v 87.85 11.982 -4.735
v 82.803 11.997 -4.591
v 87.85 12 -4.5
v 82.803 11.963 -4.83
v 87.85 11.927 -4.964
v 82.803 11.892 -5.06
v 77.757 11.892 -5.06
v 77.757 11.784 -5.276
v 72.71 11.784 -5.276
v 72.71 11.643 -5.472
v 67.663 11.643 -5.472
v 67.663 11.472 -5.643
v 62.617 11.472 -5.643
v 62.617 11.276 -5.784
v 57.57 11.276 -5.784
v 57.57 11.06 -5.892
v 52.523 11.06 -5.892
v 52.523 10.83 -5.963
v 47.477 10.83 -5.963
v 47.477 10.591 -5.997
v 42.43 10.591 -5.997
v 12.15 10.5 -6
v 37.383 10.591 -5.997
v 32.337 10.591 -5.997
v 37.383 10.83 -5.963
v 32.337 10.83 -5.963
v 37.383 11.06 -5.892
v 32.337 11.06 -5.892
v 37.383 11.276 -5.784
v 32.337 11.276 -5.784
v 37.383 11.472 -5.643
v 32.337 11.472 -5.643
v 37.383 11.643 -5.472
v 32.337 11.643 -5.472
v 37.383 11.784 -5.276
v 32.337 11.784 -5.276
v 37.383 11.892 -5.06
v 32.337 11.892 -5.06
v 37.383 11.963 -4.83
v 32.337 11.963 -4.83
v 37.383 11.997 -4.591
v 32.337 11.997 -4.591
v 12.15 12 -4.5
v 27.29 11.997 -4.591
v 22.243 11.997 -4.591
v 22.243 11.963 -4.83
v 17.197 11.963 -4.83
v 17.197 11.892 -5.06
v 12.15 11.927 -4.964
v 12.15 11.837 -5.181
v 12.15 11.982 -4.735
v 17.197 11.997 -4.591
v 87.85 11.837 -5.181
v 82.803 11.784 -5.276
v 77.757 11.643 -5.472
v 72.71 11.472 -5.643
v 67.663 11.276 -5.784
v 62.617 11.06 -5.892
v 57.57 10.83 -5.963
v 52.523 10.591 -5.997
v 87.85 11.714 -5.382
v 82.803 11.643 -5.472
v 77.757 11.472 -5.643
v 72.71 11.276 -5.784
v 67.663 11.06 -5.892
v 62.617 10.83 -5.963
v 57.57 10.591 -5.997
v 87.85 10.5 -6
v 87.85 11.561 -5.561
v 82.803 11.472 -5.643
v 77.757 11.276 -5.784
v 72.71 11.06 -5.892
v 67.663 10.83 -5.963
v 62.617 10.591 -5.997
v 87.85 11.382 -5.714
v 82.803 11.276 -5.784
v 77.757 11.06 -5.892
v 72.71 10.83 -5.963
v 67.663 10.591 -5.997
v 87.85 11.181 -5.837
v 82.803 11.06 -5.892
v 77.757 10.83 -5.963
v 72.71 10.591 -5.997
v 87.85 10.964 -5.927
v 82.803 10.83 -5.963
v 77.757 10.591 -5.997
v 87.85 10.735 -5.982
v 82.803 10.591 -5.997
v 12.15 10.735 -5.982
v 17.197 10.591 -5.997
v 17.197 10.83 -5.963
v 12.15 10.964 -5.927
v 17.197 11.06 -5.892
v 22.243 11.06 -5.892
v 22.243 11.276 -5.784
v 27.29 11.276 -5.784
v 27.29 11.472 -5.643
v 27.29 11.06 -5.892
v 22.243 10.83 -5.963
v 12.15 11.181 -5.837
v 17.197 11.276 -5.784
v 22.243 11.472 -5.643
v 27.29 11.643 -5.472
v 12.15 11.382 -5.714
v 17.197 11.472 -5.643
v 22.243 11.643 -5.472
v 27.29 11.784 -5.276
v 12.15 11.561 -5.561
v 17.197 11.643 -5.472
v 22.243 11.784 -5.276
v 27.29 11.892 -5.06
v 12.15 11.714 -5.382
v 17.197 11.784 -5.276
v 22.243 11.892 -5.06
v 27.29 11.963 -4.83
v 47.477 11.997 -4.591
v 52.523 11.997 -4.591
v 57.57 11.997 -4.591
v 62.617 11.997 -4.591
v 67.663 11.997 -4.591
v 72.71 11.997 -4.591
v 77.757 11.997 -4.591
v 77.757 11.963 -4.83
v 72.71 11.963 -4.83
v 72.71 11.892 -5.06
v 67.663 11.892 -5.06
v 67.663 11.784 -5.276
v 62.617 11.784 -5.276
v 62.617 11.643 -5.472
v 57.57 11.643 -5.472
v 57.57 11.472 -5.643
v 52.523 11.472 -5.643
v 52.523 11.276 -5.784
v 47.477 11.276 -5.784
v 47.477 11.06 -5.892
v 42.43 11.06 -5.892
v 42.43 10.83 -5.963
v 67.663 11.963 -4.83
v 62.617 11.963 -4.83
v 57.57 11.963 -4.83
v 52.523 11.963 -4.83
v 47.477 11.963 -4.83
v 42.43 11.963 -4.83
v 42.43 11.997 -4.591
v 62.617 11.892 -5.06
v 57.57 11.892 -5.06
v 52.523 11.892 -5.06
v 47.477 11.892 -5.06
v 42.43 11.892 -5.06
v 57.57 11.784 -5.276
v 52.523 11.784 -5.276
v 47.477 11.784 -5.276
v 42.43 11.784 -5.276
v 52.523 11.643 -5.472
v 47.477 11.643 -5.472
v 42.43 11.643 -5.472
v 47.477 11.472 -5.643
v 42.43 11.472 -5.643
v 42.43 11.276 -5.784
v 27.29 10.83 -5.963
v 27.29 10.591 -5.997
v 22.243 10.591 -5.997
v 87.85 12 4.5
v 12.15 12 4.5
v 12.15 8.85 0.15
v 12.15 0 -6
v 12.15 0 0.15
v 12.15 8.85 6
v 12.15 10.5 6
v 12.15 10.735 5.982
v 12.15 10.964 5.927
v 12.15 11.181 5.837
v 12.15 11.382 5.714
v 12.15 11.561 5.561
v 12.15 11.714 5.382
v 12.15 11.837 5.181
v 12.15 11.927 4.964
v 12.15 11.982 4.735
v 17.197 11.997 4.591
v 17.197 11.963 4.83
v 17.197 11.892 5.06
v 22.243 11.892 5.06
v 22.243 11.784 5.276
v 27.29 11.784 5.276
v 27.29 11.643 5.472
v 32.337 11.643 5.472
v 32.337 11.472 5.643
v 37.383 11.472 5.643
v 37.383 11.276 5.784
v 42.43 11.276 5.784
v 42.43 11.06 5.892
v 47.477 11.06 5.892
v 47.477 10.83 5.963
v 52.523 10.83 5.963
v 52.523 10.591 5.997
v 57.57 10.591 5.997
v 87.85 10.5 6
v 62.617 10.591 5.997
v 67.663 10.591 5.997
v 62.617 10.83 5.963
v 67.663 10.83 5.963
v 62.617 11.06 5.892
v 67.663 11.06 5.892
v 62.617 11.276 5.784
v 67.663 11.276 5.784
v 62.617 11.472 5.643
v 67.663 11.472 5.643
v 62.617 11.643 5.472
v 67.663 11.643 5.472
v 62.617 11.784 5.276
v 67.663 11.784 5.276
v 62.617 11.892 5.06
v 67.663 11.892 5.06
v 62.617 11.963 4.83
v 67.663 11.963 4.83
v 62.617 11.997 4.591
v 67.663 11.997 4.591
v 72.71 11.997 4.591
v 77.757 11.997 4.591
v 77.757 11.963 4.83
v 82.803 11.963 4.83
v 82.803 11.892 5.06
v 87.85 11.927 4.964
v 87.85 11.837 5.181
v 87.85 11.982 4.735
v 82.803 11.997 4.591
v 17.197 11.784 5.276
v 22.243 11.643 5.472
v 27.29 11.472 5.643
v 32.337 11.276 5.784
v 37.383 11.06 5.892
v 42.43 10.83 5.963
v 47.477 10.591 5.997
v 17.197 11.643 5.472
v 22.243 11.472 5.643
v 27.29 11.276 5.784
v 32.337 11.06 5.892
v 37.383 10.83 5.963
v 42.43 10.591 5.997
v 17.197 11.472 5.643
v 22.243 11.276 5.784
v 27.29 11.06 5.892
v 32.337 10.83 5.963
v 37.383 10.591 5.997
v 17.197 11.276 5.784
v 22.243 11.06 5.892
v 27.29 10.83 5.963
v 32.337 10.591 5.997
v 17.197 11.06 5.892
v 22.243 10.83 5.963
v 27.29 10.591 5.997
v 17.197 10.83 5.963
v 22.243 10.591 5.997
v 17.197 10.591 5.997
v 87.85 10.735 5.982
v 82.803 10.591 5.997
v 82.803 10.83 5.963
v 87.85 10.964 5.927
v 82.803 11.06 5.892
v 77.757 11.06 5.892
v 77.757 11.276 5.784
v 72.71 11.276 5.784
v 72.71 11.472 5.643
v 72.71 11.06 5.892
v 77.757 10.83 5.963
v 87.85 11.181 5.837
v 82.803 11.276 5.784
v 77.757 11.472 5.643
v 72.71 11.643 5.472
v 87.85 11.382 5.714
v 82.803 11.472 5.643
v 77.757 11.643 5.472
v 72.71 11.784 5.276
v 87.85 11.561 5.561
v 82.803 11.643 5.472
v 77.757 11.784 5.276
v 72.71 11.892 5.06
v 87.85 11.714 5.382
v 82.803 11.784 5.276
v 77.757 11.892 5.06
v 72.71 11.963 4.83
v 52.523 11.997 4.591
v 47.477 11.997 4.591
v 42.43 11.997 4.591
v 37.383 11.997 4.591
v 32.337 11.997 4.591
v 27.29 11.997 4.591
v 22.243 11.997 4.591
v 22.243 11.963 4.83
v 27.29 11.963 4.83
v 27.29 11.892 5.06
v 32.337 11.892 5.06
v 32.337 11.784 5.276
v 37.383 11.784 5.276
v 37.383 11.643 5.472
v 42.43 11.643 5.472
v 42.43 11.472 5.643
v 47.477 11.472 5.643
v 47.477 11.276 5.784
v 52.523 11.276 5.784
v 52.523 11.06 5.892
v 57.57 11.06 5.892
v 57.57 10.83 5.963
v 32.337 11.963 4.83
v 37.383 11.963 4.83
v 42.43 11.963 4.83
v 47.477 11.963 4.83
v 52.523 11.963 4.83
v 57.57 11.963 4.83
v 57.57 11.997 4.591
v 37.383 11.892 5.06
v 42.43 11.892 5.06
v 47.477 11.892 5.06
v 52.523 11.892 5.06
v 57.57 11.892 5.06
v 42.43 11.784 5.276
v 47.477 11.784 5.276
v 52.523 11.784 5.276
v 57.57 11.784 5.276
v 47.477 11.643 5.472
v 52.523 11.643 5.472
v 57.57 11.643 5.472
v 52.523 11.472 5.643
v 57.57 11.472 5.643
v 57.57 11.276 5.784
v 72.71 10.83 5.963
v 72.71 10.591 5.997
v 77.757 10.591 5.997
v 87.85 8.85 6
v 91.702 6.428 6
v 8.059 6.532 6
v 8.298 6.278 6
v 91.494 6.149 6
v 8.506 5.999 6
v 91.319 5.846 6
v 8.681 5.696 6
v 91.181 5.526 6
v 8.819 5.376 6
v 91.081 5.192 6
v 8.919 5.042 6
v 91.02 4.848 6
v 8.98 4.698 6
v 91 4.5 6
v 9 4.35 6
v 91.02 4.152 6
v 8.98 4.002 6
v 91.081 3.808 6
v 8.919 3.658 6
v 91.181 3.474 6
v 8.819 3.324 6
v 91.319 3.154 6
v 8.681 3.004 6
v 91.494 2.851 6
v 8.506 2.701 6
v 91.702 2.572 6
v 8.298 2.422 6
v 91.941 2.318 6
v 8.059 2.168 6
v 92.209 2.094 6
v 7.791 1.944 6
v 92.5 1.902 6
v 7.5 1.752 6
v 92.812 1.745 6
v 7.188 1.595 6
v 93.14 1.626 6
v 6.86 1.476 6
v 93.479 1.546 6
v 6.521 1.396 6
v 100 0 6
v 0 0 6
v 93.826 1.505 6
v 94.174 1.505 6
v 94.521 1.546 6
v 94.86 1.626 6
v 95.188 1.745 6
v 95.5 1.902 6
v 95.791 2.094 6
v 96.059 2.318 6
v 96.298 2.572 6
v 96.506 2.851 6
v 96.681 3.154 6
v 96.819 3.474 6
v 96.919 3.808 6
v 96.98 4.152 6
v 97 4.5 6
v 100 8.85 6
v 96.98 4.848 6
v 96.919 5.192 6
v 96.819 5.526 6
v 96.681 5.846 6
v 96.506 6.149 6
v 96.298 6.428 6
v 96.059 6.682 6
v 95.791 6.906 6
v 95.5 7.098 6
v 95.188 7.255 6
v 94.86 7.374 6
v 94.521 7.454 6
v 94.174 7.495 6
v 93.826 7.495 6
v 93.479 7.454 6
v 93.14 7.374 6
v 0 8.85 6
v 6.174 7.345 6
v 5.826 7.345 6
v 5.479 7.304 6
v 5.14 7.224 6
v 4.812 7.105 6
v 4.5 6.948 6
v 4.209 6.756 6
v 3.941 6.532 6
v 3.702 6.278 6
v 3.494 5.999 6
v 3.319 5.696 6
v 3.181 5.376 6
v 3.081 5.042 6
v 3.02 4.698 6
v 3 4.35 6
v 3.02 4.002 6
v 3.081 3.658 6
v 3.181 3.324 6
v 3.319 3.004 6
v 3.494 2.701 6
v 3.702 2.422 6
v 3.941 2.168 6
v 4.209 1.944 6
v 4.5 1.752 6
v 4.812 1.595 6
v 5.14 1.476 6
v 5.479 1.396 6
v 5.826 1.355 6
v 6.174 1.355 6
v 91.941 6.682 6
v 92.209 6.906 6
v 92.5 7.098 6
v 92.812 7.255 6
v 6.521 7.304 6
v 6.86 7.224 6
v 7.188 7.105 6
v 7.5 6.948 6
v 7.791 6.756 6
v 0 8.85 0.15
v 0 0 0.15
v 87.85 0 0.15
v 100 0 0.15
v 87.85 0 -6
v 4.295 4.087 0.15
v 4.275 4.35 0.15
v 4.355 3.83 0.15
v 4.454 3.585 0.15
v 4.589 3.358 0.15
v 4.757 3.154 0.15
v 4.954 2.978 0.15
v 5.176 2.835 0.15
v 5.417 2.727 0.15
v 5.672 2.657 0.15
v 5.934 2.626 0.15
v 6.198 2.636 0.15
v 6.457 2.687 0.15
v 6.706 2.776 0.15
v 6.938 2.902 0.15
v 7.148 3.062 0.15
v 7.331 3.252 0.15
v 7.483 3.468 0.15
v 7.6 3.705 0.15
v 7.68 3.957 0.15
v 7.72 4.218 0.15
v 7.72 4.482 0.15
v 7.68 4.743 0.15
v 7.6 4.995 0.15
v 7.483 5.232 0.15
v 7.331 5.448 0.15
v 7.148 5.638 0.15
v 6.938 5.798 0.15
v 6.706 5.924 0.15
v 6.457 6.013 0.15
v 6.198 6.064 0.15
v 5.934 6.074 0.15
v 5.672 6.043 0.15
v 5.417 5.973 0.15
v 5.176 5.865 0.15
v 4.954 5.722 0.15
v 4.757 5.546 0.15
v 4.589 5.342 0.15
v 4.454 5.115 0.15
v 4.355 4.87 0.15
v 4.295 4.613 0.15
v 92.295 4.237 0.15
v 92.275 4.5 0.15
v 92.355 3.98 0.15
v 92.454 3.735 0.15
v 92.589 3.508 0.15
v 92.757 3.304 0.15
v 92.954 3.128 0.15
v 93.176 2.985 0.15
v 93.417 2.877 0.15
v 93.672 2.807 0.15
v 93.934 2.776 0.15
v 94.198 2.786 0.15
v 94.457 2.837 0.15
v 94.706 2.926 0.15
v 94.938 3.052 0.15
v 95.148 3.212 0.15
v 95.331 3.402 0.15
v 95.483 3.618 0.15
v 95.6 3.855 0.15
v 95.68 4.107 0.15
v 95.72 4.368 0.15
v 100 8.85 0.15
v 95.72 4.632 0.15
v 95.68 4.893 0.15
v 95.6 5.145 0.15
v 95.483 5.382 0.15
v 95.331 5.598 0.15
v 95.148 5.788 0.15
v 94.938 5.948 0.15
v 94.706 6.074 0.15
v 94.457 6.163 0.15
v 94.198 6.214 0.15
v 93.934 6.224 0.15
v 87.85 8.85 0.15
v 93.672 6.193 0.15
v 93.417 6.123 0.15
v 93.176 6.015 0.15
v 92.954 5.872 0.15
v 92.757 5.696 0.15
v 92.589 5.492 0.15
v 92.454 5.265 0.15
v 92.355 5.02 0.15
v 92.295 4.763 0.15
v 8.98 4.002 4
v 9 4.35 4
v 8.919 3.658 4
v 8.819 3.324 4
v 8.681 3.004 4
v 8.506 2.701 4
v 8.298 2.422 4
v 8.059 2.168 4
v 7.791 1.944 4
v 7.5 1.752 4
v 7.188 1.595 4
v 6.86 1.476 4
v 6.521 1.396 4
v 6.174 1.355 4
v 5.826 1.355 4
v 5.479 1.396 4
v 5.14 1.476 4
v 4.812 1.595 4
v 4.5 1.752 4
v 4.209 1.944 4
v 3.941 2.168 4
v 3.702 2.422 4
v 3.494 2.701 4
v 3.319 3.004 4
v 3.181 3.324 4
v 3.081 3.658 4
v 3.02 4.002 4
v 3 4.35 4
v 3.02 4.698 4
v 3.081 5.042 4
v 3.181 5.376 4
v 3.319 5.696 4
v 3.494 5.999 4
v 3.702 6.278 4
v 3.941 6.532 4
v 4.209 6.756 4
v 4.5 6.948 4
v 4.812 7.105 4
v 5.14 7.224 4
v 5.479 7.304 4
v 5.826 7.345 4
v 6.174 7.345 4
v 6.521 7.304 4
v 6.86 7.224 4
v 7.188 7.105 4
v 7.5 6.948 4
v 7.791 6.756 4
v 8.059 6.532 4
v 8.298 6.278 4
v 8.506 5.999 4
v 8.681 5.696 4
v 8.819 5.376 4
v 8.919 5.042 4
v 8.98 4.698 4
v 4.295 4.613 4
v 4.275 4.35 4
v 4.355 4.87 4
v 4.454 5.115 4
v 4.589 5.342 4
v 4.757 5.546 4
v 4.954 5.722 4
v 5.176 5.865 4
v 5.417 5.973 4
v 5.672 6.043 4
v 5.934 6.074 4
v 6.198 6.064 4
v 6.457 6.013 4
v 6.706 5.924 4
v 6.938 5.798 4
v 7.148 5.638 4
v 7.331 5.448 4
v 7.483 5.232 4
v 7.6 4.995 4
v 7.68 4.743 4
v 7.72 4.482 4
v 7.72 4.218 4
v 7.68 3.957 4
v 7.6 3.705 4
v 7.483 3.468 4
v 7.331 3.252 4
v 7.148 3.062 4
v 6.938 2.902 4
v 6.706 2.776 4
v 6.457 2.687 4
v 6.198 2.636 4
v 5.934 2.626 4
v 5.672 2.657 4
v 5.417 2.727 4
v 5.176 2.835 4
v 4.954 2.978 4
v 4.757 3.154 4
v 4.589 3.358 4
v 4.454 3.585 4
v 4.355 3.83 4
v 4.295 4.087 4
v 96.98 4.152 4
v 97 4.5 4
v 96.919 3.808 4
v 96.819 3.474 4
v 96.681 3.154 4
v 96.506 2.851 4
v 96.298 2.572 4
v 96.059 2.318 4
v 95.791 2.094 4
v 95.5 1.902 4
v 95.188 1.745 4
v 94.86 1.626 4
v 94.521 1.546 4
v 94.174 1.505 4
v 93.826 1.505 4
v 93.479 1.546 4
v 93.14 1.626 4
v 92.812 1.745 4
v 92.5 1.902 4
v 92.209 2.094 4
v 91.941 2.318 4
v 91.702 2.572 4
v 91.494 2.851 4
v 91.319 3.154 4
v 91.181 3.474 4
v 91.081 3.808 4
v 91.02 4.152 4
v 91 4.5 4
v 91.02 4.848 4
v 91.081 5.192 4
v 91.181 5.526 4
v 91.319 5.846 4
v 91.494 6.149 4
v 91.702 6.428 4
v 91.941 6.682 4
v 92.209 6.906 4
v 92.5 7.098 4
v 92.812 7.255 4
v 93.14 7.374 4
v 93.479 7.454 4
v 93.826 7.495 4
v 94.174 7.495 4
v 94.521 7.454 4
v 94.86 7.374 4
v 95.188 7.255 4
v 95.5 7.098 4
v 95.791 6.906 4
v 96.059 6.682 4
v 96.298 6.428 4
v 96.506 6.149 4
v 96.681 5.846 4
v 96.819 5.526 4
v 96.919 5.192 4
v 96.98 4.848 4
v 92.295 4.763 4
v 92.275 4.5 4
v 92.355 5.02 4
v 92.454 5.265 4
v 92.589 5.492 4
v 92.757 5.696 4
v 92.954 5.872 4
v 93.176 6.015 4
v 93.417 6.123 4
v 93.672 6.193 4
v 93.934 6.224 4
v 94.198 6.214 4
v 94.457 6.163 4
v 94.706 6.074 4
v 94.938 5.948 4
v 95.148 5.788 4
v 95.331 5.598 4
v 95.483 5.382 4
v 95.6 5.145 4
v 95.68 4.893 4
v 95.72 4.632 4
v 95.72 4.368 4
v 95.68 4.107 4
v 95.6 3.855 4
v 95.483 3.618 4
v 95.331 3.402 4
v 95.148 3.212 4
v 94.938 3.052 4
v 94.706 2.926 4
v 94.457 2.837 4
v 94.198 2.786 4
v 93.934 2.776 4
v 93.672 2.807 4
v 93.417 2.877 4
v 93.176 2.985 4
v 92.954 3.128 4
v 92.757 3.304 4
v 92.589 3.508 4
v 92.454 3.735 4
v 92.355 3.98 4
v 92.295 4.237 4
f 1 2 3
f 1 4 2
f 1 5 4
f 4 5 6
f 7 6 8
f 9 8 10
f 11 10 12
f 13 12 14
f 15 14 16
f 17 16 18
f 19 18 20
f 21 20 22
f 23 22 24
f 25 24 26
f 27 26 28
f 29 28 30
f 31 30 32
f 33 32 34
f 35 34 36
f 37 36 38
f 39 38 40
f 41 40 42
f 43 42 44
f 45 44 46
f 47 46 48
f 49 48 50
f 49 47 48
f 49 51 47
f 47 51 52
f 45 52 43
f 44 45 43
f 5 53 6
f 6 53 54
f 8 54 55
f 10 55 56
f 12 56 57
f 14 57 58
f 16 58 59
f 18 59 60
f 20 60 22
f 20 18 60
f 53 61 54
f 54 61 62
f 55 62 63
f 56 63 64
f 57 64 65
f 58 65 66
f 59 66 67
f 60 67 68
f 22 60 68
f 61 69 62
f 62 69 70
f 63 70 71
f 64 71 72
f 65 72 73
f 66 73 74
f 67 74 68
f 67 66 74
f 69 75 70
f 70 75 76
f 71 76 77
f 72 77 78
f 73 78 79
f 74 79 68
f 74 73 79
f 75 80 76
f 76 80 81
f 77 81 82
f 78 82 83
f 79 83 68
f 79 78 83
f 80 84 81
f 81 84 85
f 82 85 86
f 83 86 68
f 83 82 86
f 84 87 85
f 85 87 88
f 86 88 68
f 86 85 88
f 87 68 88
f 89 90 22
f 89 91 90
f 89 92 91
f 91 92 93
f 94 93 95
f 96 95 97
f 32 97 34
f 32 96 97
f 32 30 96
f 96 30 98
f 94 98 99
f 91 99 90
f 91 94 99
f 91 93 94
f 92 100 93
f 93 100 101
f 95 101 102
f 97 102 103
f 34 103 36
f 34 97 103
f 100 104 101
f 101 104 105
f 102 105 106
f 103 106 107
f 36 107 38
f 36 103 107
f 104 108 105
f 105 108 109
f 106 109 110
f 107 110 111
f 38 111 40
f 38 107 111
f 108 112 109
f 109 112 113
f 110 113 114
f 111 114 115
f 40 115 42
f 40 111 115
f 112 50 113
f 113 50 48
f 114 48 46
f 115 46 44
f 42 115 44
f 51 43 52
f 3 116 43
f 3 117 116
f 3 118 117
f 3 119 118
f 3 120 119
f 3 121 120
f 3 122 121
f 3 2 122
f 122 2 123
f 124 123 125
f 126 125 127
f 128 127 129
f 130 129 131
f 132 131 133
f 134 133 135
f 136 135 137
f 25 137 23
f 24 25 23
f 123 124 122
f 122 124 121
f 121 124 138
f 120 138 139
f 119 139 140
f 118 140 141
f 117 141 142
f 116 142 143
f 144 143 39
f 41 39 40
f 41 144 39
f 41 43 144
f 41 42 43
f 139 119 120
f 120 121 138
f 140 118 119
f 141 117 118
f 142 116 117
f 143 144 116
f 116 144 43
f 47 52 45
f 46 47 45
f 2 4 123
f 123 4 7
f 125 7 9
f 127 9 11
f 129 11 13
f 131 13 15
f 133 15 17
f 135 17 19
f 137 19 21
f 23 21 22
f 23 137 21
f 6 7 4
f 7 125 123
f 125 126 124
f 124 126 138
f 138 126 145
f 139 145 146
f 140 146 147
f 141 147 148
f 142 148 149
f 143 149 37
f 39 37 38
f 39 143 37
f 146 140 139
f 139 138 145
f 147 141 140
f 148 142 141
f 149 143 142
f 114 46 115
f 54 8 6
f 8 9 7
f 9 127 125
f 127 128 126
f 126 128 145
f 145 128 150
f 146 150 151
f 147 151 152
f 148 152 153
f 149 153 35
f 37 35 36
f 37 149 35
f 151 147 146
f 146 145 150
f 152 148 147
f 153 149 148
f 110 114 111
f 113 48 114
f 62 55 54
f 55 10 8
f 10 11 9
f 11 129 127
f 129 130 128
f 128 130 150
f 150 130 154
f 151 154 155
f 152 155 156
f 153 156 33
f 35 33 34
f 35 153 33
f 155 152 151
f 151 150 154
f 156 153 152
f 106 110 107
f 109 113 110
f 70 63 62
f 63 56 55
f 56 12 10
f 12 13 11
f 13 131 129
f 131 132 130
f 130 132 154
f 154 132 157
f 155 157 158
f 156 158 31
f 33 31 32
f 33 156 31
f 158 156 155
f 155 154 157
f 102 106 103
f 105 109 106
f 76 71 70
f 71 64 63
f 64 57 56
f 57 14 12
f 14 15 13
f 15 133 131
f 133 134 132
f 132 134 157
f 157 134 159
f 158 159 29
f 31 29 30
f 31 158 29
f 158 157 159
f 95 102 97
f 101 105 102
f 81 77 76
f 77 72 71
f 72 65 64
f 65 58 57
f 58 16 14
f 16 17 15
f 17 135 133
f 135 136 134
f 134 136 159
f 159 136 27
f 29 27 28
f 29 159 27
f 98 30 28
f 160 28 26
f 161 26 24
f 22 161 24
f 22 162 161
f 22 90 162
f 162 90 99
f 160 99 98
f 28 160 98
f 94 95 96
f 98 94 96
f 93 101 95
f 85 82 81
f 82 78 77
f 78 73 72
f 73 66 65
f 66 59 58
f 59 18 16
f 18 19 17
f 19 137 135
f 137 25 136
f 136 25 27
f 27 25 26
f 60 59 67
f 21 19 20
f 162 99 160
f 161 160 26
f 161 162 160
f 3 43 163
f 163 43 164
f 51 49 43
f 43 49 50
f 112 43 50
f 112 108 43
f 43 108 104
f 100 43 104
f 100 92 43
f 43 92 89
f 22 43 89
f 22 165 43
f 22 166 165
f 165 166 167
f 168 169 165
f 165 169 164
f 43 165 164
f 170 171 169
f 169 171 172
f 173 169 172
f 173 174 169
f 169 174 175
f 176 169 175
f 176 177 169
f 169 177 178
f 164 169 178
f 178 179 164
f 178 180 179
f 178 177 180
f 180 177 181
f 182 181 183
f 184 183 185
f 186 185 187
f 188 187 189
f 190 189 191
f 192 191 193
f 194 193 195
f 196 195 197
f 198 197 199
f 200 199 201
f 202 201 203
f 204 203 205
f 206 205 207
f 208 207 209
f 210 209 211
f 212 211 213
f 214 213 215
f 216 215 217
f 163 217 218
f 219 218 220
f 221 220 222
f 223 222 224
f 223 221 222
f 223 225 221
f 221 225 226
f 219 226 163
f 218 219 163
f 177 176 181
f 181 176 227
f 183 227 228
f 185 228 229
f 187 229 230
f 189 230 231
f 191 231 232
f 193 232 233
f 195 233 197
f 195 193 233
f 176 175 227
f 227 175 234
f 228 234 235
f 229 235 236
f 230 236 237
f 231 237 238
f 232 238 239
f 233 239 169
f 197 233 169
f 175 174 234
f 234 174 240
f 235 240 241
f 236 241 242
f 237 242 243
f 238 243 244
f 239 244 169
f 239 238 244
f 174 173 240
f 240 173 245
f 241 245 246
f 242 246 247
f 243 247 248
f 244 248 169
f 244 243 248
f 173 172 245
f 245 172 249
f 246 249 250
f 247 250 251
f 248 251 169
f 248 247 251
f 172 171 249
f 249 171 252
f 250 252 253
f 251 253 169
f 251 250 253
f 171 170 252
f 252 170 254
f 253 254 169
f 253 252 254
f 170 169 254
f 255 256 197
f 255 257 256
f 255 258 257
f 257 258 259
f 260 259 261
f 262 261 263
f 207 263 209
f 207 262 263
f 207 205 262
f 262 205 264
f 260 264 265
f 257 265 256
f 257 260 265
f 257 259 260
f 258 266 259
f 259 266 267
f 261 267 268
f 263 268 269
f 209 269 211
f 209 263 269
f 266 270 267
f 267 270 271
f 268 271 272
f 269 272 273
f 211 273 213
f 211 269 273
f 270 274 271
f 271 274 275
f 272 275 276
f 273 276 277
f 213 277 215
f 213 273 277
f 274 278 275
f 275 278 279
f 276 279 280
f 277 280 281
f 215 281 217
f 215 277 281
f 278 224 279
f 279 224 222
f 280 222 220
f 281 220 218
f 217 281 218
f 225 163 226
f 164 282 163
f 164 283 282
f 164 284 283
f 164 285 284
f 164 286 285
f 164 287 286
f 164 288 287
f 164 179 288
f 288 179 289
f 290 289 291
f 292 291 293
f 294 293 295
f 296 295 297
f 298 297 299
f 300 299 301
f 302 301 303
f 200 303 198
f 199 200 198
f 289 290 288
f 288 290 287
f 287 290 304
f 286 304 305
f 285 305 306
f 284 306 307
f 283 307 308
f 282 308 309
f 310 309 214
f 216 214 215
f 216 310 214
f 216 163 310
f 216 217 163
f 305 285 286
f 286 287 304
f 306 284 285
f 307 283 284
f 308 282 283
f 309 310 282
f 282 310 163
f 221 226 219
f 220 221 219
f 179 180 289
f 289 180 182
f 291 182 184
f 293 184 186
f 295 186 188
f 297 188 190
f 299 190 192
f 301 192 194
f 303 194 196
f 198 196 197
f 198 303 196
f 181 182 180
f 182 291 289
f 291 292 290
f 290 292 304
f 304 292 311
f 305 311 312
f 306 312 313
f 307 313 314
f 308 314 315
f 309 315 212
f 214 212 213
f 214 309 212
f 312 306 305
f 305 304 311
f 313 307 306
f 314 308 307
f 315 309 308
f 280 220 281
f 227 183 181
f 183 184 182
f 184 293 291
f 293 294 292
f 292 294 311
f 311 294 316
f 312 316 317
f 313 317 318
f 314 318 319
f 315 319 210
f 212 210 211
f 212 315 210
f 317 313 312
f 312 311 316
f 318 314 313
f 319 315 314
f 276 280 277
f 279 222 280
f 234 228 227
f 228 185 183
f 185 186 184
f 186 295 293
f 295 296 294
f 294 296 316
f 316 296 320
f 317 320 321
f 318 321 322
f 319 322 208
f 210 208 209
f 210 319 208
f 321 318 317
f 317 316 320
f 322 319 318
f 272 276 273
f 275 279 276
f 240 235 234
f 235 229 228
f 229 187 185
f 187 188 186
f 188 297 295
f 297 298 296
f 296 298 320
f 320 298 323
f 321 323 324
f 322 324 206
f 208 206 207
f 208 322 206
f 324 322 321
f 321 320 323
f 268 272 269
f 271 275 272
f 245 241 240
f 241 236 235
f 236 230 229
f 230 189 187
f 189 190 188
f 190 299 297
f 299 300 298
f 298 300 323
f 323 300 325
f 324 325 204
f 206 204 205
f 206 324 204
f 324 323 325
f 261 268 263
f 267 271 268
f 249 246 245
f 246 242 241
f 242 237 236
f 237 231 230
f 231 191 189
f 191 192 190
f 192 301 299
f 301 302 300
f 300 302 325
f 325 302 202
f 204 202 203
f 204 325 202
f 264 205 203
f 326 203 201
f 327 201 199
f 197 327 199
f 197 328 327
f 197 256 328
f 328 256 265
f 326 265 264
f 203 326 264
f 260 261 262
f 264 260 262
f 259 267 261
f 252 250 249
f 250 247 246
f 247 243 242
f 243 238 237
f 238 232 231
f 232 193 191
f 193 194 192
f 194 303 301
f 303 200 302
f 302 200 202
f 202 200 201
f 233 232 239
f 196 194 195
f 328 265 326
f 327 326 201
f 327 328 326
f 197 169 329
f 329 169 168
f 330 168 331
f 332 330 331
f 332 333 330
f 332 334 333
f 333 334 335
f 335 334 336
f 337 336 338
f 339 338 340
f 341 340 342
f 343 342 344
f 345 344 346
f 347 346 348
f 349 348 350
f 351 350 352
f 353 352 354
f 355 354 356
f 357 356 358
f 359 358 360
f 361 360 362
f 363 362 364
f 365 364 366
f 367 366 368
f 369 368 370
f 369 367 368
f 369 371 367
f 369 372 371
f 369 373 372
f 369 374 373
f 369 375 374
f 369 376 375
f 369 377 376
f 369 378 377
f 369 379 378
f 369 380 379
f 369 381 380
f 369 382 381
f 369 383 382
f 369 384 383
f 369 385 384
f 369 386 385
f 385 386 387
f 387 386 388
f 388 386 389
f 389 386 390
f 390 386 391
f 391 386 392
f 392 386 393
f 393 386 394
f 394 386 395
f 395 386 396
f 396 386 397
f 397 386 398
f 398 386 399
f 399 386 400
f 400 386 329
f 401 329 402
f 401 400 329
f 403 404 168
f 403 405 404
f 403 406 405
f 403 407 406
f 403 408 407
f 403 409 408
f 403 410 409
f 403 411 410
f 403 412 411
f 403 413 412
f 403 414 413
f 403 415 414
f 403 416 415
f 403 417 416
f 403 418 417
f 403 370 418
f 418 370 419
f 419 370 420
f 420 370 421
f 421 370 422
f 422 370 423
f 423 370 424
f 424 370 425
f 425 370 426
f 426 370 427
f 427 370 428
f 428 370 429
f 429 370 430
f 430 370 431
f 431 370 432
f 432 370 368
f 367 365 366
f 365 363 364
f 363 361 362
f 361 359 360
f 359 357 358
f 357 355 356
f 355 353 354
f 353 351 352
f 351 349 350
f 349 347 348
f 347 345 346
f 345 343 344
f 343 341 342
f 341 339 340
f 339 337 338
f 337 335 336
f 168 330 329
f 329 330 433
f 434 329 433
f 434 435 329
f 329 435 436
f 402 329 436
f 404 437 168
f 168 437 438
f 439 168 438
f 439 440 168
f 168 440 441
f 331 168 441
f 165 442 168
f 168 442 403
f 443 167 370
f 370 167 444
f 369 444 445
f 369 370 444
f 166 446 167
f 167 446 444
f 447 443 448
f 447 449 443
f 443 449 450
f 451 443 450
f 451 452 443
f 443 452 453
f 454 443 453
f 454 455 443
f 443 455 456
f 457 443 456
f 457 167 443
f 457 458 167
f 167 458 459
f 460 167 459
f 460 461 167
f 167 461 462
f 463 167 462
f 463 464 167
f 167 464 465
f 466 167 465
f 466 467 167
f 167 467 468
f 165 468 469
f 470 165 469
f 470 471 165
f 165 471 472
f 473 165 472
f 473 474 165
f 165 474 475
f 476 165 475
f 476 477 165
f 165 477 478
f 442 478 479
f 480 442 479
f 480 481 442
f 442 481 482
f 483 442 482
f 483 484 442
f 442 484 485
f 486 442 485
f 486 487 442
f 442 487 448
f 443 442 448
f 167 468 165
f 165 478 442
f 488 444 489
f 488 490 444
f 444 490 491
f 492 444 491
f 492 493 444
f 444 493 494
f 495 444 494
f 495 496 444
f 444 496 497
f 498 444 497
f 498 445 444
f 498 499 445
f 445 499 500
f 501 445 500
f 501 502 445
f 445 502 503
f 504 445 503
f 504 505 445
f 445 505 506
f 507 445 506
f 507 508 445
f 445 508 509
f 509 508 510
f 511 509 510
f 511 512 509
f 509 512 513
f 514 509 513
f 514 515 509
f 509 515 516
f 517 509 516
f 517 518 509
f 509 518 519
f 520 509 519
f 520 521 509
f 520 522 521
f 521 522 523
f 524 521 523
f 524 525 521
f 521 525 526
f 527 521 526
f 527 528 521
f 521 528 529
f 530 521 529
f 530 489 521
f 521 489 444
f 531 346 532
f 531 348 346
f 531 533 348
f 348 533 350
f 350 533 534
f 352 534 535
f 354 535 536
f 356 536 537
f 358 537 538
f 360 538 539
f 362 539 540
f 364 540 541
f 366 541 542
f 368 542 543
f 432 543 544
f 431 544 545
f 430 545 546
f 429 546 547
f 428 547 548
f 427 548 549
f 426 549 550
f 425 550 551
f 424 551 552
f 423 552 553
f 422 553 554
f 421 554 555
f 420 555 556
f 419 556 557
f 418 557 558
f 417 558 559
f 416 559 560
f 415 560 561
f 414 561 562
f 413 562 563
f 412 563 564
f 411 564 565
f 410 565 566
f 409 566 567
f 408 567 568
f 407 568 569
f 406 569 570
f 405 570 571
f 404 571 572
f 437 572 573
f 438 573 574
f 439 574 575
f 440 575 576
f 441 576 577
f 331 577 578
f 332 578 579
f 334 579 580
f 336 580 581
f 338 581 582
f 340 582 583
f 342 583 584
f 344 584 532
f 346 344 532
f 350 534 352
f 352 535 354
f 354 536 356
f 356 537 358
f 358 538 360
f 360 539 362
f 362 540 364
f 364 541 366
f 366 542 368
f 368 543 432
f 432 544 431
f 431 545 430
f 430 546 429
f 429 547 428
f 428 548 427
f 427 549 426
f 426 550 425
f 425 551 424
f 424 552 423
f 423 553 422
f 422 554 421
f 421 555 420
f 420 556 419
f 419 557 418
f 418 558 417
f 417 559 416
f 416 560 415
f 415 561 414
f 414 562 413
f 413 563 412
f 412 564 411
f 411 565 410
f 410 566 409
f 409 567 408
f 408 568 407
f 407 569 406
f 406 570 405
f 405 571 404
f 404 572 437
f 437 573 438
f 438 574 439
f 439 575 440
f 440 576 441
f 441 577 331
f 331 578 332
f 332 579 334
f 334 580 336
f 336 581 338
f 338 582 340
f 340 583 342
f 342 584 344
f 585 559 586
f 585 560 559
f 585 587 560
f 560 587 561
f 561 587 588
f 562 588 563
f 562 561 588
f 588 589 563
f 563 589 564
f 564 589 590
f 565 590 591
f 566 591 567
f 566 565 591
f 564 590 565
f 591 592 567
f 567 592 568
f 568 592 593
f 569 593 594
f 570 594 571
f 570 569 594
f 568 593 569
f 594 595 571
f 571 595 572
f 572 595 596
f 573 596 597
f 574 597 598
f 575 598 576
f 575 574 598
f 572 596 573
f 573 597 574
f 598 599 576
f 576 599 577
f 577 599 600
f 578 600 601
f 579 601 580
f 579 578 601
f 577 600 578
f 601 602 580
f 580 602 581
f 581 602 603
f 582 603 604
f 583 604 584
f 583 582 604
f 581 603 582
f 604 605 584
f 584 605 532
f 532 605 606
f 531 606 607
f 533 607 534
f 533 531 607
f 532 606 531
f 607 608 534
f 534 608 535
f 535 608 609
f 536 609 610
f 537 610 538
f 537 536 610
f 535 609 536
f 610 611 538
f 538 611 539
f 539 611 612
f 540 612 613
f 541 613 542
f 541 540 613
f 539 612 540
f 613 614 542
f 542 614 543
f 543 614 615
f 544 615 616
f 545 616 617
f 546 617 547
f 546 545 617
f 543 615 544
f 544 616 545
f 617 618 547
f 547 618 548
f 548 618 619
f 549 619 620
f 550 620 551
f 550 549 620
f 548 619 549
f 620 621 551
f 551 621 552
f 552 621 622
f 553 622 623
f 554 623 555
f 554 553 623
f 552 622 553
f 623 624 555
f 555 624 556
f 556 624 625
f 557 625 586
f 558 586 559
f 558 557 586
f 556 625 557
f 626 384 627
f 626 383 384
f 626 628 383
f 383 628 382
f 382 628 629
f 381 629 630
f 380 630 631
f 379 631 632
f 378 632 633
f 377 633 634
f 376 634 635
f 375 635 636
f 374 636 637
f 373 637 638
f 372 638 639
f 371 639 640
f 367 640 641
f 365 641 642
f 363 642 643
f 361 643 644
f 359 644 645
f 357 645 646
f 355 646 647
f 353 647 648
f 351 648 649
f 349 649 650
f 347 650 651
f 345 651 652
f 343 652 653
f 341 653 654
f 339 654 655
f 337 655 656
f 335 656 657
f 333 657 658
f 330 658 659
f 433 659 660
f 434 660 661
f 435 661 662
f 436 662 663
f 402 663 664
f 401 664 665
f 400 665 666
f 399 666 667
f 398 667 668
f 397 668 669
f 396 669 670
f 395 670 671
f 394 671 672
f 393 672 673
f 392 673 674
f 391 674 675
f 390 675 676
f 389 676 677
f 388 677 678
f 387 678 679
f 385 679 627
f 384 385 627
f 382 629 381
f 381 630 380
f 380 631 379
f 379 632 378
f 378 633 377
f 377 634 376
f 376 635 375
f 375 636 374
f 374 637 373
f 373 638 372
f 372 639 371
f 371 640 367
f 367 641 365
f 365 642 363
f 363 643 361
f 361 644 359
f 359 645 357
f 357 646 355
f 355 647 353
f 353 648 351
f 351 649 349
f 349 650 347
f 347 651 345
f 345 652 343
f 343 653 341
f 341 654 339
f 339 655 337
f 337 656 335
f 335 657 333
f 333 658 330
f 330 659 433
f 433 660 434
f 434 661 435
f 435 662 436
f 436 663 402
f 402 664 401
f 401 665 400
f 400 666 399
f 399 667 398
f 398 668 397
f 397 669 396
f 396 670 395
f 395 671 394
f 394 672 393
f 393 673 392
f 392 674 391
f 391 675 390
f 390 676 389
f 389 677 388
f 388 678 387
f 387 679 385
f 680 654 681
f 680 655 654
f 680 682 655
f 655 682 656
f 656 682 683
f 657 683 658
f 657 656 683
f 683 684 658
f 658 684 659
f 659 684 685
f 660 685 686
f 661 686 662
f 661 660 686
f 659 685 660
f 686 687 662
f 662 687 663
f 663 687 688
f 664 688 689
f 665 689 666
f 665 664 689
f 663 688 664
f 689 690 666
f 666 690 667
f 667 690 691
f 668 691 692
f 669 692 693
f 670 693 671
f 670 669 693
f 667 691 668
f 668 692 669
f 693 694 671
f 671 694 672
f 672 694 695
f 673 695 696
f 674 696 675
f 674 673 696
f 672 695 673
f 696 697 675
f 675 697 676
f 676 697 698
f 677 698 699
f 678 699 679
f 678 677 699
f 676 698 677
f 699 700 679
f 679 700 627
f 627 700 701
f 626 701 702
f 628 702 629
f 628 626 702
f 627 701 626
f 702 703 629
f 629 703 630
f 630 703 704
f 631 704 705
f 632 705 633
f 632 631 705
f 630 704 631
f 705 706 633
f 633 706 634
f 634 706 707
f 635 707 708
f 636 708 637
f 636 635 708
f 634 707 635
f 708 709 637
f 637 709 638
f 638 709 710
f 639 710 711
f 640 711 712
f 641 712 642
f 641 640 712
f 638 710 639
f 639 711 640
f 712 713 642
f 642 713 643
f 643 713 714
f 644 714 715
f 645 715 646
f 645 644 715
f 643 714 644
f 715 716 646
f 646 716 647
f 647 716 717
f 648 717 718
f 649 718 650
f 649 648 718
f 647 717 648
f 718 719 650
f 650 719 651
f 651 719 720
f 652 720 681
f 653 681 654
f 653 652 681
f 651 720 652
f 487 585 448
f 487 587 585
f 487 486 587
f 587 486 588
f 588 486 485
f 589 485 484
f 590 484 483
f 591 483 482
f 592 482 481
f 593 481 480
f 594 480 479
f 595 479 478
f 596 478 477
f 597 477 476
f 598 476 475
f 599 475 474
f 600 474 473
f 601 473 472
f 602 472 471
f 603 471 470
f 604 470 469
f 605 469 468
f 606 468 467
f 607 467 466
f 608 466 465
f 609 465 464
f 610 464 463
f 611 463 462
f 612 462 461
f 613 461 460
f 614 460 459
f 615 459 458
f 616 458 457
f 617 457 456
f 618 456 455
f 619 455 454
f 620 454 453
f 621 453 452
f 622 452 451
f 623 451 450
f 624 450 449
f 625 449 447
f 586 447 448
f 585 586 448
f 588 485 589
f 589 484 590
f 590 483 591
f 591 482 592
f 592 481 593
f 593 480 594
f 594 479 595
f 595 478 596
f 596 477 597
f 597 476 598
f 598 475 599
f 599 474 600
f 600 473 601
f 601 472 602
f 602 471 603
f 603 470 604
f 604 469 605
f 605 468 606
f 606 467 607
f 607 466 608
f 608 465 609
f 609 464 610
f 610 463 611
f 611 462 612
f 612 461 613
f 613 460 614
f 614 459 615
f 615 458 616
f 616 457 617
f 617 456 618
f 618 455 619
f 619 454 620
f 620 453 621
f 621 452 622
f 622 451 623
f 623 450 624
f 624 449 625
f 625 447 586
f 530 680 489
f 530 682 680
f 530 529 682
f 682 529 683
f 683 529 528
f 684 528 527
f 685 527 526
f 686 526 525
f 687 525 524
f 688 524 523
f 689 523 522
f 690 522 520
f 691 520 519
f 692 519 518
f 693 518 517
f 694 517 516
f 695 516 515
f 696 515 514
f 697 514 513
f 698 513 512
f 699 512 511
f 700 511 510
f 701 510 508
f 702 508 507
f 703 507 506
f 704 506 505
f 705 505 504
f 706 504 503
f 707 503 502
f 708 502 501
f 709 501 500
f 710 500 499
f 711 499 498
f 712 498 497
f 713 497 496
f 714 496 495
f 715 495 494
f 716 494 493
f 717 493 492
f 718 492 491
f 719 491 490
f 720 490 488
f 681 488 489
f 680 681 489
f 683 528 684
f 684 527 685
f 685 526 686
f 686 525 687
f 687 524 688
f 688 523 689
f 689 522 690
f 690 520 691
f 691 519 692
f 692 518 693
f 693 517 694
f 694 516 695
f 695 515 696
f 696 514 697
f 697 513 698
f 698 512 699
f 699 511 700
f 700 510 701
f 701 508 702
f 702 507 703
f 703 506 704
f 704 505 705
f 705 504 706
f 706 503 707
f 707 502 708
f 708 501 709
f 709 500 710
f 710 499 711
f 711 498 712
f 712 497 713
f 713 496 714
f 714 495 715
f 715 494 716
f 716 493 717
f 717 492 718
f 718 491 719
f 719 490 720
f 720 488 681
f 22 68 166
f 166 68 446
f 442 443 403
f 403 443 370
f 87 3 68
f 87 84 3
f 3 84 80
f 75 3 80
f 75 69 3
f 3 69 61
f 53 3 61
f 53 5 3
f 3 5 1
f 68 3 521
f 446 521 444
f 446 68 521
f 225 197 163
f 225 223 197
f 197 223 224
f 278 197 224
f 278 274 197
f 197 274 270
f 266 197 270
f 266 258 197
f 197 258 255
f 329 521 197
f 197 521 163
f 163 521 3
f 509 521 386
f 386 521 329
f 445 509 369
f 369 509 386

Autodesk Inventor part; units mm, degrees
ref_plane "YZ Plane" through (0, 0, 0) normal (1, 0, 0) x (0, 1, 0)
ref_plane "XZ Plane" through (0, 0, 0) normal (0, 1, 0) x (-1, 0, 0)
ref_plane "XY Plane" through (0, 0, 0) normal (0, 0, 1) x (1, 0, 0)
sketch "Sketch1" plane through (0, 0, 0) normal (0, 0, 1) x (1, 0, 0)
  line L0 (0, 0) -> (100, 0)
  line L1 (100, 0) -> (100, 8.85)
  line L2 (87.85, 12) -> (12.15, 12)
  line L3 (0, 8.85) -> (0, 0)
  line L4 (12.15, 12) -> (12.15, 8.85)
  line L5 (12.15, 8.85) -> (0, 8.85)
  line L6 (87.85, 12) -> (87.85, 8.85)
  line L7 (87.85, 8.85) -> (100, 8.85)
  dimension "d6" = 100
  dimension "d7" = 3.15
  dimension "d8" = 3.15
  dimension "d9" = 12.15
  dimension "d10" = 12.15
  dimension "d11" = 8.85
  dimension "d12" = 8.85
  dimension "d13" = 12
extrude "Extrusion1" add sketch "Sketch1" along normal blind 6
sketch "Sketch2" plane through (0, 0, 0) normal (0, 0, -1) x (-1, 0, 0)
  line L0 (-87.85, 12) -> (-12.15, 12) projected
  line L1 (0, 0) -> (-100, 0) projected
  line L2 (-87.85, 12) -> (-12, 12)
  line L3 (-12, 12) -> (-12, 0)
  line L4 (-12, 0) -> (-87.85, 0)
  line L5 (-87.85, 0) -> (-87.85, 12)
extrude "Extrusion2" add sketch "Sketch2" along normal blind 6
sketch "Sketch3" plane through (0, 0, 0) normal (0, 0, -1) x (-1, 0, 0)
  circle A0 centre (-6, 4.35) radius 1.725
  line L0 (-12, 8.85) -> (0, 8.85) projected
  line L1 (0, 8.85) -> (0, 0) projected
  circle A1 centre (-94, 4.5) radius 1.725
  line L2 (-87.85, 0) -> (-100, 0) projected
  line L3 (-100, 0) -> (-100, 8.85) projected
  point P0 (-12, 9)
  dimension "d18" = 3.45
  dimension "d19" = 4.5
  dimension "d20" = 6
  dimension "d21" = 3.45
  dimension "d22" = 4.5
  dimension "d23" = 6
extrude "Extrusion3" cut sketch "Sketch3" against normal blind 4
sketch "Sketch4" plane through (0, 0, 6) normal (0, 0, 1) x (1, 0, 0)
  circle A0 centre (6, 4.35) radius 3
  line L0 (12.15, 8.85) -> (0, 8.85) projected
  line L1 (0, 8.85) -> (0, 0) projected
  circle A1 centre (94, 4.5) radius 1.725 projected
  circle A2 centre (94, 4.5) radius 3
  dimension "d26" = 6
  dimension "d27" = 4.5
  dimension "d28" = 6
  dimension "d29" = 6
extrude "Extrusion4" cut sketch "Sketch4" against normal blind 2 contours A0 | A1 | A2
sketch "Sketch5" plane through (87.85, 0, 0) normal (0, -1, 0) x (1, 0, 0)
  point P0 (-87.85, 0)
sketch "Sketch6" plane through (0, 0, 0) normal (0, 0, -1) x (-1, 0, 0)
  line L0 (0, 0) -> (-100, 0) projected
  line L1 (-12.15, 8.85) -> (0, 8.85) projected
  line L2 (0, 0) -> (0, 8.85)
  line L3 (-12.15, 8.85) -> (-12, 8.85) projected
  line L4 (0, 8.85) -> (-12, 8.85)
  line L5 (-12, 0) -> (-12, 12) projected
  line L6 (-12, 8.85) -> (-12, 0)
  line L7 (-12, 0) -> (0, 0)
  line L8 (-100, 0) -> (-100, 8.85) projected
  line L9 (-100, 0) -> (-87.85, 0)
  line L10 (-87.85, 0) -> (-87.85, 8.85) projected
  line L11 (-87.85, 0) -> (-87.85, 8.85)
  line L12 (-87.85, 8.85) -> (-100, 8.85)
  line L13 (-100, 8.85) -> (-100, 0)
  dimension "d33" = 12.15
extrude "Extrusion5" cut sketch "Sketch6" against normal blind 0.15
sketch "Sketch7" plane through (12, 8.85, 0) normal (-1, 0, 0) x (0, 0, 1)
  line L0 (0, 3.15) -> (0, 0) projected
  line L1 (0, 3.15) -> (0, 0)
  line L2 (0.15, 0) -> (6, 0) projected
  line L3 (0, 0) -> (0.15, 0)
  line L4 (0.15, 0) -> (0.15, -8.85) projected
  line L5 (0.15, 0) -> (0.15, -8.85)
  line L6 (0.15, -8.85) -> (-6, -8.85) projected
  line L7 (0.15, -8.85) -> (-6, -8.85)
  line L8 (-6, -8.85) -> (-6, 3.15)
  line L9 (0, 3.15) -> (6, 3.15) projected
  line L10 (-6, 3.15) -> (0, 3.15)
  point P0 (0, -8.85)
sketch "Sketch8" plane through (12.15, 12, 6) normal (0, 1, 0) x (1, 0, 0)
  line L0 (0, 6) -> (0, 0) projected
  line L1 (75.7, 12) -> (-0.15, 12) projected
  line L2 (0, 6) -> (-0.15, 6)
  line L3 (-0.15, 6) -> (-0.15, 12)
  line L4 (-0.15, 12) -> (0, 12)
  line L5 (0, 12) -> (0, 6)
  point P0 (-12.15, 6)
extrude "Extrusion6" cut sketch "Sketch7" against normal blind 0.15
fillet "Fillet2" radius 1.5 2 edges at (50, 12, 6) (50, 12, -6)
equation "\"d8\" = d7"
equation "\"d10\" = d9"
equation "\"d12\" = d11"
properties part number "beam10cmVer2"
